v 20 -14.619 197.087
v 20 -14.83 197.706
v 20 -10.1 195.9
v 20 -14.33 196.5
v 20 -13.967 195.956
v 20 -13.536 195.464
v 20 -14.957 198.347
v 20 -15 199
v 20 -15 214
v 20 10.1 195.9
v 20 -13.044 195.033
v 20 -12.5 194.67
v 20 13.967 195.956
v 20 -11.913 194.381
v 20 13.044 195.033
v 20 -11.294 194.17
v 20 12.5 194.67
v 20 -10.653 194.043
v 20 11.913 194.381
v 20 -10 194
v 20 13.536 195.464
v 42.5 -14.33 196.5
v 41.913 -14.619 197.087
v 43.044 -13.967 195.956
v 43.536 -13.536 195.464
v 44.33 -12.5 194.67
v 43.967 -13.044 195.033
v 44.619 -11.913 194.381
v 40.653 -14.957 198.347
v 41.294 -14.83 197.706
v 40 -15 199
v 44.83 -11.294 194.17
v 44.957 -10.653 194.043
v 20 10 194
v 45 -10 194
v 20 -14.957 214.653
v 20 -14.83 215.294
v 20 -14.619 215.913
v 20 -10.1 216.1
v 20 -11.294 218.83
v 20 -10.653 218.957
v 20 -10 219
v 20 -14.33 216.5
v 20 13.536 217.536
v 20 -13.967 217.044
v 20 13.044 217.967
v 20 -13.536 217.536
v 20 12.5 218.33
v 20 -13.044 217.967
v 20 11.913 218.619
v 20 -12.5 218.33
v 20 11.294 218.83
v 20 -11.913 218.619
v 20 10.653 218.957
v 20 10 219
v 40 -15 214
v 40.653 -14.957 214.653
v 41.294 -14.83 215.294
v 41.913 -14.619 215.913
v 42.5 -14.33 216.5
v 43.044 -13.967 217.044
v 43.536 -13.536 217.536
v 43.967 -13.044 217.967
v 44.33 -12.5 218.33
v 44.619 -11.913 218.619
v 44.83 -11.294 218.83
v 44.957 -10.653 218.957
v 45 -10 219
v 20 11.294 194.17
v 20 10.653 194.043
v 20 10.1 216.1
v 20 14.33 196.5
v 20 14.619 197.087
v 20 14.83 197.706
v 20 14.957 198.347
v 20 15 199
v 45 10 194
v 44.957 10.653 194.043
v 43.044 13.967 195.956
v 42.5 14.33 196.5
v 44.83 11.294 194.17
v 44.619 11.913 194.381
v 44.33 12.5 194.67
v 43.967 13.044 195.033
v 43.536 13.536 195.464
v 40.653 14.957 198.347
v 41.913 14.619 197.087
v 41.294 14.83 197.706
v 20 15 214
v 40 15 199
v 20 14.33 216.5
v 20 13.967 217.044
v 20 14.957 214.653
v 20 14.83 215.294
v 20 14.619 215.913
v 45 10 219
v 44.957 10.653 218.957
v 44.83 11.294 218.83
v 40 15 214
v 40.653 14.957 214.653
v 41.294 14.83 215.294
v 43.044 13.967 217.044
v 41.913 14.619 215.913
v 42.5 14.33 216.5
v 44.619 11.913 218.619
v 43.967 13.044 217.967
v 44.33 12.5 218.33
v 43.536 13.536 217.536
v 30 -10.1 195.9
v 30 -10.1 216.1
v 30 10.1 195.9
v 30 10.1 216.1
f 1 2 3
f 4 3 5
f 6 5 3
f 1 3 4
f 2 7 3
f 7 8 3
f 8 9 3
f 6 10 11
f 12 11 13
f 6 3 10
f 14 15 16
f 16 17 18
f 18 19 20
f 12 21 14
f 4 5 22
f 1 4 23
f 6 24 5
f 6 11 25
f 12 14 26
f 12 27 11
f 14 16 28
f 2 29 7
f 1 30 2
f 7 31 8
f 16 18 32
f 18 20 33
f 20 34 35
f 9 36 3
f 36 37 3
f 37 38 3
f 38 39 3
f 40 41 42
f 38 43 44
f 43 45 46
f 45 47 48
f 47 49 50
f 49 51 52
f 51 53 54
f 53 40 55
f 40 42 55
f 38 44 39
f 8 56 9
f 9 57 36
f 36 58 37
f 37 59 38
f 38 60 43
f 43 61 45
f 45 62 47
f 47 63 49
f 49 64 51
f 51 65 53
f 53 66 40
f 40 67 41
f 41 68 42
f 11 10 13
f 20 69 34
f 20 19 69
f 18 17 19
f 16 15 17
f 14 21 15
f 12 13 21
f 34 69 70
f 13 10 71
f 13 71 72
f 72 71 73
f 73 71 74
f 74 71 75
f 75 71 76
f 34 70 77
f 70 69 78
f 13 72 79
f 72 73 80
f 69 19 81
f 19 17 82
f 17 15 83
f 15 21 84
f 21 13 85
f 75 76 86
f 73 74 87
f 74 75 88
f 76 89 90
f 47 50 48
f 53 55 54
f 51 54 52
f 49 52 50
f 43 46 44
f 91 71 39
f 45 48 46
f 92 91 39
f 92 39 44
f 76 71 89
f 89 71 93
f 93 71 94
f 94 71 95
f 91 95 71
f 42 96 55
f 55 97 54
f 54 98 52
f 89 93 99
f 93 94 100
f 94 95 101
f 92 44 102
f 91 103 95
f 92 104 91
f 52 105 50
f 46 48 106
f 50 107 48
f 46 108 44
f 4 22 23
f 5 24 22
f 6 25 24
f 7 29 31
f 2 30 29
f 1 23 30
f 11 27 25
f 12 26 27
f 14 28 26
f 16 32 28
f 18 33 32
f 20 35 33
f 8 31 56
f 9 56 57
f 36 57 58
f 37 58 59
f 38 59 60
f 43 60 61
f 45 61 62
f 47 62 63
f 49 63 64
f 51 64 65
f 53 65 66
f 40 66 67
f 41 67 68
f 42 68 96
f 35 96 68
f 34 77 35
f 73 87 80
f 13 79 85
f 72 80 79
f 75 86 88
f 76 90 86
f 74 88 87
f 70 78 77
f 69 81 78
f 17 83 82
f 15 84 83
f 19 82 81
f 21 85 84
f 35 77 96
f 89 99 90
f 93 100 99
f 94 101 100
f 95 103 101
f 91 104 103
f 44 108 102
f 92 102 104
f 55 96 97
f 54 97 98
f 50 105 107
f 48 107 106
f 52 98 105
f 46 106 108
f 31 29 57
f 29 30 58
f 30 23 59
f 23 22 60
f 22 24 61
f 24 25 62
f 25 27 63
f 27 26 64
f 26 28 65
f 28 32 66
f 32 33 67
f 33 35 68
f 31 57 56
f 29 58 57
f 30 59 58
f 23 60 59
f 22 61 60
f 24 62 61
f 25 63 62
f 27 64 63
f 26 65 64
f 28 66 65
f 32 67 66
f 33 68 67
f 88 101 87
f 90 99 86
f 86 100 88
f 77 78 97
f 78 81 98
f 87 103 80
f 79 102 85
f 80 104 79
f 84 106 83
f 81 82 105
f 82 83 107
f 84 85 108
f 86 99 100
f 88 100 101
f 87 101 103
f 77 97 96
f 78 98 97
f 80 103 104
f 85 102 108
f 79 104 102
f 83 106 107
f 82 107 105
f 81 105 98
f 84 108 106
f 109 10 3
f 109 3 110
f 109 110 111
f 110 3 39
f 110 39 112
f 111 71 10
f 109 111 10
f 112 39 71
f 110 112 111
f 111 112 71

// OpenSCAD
// =====================================================================
//  p10_reset_tab.scad - P10 reset tab and spine end cap (front end of the 2020 spine at X +30)
//  PROJECT SCRATCH · 05-engineering/cad/frame · units: mm · frame: global (section 2)
//  Sources: mechanical.md section 4.7 (reset tab on the spine), 11 P10 (25 x 30 x 25, socket, finger tab R 5).
//  The spine is 80 long from X -50 (ADDENDUM-1 D8), so its front end is at X +30 (section 2 / 4.7 say X -15: C-F2).
// =====================================================================
include <lib_sp1.scad>
X0 = 20;  X1 = 45;  Y = 30;  Z0 = 194;  Z1 = 219;  SOCK_DEPTH = 10;  R = 5;  SPINE_ZC = 206;
module p10_reset_tab() difference() {
    intersection() {
        ext_x(X0, X1) rrect(0, (Z0 + Z1) / 2, Y, Z1 - Z0, R);
        rbox_z(X0 - R, X1, -Y / 2, Y / 2, Z0 - 1, Z1 + 1, R);
    }
    box(X0 - 1, X0 + SOCK_DEPTH, -EXT_SOCK / 2, EXT_SOCK / 2, SPINE_ZC - EXT_SOCK / 2, SPINE_ZC + EXT_SOCK / 2);
}
p10_reset_tab();
